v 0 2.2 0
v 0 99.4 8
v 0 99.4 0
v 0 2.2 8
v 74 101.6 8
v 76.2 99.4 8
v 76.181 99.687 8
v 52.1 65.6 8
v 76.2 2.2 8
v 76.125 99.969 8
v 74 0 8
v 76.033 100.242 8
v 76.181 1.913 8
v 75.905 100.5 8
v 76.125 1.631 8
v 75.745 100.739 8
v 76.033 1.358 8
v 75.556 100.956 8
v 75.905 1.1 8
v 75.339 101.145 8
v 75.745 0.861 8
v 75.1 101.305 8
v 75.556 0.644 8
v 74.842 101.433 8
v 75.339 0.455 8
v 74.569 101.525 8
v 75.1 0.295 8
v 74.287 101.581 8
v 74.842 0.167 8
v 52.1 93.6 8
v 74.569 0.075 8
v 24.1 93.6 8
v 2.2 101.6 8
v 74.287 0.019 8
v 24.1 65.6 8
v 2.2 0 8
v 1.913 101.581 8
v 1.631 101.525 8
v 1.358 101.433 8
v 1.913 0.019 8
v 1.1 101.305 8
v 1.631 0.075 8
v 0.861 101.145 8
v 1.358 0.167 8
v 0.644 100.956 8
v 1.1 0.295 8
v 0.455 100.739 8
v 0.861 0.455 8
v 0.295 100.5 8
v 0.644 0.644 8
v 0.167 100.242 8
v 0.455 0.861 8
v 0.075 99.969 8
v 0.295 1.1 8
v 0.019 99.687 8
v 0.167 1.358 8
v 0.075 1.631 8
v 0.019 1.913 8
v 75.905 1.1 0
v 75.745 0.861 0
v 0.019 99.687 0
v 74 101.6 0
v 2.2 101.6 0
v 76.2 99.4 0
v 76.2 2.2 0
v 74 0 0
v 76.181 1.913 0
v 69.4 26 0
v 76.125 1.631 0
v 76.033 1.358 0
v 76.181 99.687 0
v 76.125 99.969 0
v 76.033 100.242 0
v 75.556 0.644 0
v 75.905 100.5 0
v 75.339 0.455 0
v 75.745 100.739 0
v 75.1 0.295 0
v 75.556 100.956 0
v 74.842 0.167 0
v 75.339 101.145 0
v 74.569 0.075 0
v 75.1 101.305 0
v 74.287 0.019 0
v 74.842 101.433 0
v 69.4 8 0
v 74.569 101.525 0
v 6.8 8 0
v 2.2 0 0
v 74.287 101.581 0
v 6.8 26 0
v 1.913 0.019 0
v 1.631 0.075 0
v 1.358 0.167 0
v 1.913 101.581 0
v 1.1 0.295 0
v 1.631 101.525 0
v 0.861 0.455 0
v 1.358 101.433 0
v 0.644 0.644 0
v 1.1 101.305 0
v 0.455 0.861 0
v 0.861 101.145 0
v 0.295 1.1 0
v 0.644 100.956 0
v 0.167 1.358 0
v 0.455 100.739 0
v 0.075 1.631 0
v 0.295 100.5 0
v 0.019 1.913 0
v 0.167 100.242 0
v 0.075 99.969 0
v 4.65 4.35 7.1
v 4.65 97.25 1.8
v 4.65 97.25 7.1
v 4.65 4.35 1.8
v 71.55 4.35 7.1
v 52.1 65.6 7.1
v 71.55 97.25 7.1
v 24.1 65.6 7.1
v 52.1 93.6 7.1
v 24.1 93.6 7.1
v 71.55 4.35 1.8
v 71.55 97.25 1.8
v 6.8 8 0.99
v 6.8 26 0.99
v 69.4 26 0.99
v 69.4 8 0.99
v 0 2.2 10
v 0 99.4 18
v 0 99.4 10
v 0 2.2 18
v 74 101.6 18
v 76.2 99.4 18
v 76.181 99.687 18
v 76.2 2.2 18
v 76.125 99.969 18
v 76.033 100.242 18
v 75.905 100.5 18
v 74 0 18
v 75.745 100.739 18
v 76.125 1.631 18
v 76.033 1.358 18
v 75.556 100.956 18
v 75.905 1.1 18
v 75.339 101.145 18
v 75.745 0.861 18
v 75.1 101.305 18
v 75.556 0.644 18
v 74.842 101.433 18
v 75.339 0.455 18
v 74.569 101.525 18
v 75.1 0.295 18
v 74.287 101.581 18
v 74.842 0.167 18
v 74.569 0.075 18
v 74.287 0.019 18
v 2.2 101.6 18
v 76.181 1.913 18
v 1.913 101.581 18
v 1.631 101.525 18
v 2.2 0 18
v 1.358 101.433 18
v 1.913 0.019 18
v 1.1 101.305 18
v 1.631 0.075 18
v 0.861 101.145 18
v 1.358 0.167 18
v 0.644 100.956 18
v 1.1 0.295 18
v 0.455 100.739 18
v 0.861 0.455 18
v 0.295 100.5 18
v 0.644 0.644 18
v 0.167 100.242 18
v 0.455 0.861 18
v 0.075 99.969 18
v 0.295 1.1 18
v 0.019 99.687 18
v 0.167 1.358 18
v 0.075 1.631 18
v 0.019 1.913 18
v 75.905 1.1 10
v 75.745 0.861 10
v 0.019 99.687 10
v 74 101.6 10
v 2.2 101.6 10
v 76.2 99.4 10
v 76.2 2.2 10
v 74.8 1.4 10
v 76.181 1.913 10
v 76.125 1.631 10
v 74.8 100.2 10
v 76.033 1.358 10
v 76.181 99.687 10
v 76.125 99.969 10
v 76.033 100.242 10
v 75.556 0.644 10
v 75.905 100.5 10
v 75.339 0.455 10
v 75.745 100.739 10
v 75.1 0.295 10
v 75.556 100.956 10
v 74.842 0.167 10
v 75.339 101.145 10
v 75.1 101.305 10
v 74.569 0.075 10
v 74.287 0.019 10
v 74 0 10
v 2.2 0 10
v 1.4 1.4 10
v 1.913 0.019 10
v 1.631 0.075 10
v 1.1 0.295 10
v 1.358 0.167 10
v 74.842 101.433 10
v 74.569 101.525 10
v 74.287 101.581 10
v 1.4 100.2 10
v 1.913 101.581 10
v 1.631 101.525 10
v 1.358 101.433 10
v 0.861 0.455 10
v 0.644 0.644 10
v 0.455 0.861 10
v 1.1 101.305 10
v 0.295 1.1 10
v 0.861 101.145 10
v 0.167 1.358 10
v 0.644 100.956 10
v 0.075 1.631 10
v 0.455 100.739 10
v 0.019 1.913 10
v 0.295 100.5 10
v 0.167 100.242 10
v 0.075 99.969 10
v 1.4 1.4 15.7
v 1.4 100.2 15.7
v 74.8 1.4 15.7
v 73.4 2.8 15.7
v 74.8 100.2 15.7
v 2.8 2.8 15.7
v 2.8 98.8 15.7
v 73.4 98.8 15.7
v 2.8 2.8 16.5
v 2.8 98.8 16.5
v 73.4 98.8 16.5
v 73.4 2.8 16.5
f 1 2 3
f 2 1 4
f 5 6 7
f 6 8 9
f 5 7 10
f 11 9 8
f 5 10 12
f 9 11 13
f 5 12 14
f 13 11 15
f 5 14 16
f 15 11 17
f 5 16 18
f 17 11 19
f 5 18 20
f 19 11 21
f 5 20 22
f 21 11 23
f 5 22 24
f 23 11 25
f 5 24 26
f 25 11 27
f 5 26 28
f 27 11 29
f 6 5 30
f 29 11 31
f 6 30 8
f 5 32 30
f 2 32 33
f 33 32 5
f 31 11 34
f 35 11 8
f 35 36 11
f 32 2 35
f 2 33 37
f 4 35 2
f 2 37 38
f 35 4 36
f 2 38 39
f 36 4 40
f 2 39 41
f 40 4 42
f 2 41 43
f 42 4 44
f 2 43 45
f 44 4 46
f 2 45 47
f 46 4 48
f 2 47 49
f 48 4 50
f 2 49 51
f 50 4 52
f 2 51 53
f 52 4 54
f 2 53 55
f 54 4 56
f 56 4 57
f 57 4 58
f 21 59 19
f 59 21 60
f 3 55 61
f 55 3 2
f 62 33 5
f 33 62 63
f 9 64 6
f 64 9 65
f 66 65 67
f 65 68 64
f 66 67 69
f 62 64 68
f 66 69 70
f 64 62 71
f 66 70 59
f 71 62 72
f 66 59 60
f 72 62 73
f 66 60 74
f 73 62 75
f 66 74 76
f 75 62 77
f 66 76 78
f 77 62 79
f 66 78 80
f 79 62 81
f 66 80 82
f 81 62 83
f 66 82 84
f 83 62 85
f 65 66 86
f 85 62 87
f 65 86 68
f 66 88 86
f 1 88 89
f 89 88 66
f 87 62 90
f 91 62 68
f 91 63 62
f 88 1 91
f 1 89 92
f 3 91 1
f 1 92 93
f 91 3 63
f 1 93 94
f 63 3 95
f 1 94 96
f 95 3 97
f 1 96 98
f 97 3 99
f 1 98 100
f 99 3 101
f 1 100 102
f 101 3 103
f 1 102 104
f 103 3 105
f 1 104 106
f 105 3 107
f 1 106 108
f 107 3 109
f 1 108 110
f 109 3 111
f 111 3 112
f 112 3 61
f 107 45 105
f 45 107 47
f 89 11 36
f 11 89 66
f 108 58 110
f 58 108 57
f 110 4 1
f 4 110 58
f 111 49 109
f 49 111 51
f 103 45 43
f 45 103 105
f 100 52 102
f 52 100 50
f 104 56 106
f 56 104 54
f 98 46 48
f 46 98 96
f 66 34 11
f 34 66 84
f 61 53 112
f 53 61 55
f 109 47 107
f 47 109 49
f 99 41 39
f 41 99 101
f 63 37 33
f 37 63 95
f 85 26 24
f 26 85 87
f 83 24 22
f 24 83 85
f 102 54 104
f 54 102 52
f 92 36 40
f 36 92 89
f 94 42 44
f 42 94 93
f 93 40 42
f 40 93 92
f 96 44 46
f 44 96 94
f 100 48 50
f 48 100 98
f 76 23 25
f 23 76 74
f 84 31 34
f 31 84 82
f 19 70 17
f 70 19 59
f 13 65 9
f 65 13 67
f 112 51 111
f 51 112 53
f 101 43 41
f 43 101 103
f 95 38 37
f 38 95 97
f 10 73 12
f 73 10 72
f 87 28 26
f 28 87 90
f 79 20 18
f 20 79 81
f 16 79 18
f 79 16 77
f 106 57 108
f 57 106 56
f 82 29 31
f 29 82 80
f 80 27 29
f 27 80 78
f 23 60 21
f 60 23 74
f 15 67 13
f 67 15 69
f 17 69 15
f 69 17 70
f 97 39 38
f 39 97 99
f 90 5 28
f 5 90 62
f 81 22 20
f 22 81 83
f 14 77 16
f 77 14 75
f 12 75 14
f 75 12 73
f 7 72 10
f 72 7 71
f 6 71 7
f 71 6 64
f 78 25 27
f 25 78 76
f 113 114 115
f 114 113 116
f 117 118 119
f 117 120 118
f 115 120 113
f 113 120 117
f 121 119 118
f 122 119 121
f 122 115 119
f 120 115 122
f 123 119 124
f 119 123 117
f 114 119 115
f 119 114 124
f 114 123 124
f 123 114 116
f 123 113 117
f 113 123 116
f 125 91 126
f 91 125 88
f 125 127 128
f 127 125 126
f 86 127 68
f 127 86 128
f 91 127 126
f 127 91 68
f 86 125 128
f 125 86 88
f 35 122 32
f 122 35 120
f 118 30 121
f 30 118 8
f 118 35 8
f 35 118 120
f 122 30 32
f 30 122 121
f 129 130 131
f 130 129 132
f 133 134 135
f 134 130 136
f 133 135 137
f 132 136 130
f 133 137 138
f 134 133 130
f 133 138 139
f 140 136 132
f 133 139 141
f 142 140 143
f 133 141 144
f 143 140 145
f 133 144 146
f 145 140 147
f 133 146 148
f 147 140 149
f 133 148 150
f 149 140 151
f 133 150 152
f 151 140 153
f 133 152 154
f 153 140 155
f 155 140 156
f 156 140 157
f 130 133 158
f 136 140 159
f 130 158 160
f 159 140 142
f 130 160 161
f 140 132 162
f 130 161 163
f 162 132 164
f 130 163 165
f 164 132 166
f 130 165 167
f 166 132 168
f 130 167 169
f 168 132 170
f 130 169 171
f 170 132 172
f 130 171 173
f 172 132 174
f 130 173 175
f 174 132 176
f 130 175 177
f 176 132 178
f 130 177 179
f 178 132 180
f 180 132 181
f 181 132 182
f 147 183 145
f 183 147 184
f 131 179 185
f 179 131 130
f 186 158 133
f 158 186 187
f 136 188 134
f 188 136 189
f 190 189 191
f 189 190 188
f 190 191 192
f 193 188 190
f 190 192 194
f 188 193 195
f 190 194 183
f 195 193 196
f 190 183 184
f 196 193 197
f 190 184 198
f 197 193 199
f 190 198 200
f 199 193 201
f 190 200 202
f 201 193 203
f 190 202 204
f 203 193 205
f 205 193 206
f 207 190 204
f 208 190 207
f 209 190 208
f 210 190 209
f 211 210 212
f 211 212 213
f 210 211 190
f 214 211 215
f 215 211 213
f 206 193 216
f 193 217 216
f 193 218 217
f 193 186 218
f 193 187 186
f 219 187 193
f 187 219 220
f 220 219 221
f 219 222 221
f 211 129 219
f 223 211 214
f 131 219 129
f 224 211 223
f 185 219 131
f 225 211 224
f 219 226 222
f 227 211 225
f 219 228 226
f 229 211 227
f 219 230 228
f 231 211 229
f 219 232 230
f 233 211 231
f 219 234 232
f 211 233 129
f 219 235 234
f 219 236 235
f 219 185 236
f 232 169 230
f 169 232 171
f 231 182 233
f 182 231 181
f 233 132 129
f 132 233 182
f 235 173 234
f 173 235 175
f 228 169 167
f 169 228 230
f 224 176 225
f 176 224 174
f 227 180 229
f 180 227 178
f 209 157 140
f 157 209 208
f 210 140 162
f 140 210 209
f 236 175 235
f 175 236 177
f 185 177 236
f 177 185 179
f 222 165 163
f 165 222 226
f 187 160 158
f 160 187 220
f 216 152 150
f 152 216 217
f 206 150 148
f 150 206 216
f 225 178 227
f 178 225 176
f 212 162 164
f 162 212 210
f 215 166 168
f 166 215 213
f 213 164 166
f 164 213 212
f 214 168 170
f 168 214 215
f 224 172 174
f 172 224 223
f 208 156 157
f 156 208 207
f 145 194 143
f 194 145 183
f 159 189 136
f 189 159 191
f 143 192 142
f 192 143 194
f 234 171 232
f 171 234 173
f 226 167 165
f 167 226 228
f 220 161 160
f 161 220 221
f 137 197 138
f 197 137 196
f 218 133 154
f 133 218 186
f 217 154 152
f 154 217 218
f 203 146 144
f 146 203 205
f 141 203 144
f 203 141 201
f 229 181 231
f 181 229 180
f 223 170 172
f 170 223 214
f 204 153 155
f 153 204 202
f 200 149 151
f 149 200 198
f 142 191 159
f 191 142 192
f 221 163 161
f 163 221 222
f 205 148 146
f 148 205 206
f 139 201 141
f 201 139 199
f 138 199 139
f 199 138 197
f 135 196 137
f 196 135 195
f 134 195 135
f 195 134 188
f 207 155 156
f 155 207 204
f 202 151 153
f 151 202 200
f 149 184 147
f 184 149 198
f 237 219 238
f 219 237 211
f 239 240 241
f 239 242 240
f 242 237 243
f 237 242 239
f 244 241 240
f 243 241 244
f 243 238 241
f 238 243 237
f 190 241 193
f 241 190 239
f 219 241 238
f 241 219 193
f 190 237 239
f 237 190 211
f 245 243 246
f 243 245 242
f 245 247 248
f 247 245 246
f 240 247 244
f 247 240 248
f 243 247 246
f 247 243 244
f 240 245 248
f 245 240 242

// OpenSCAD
// =============================================
// HoloCase V4 - Clean & Reliable Version
// Rounded corners + proper lid fit
// =============================================

/* [Render] */
// "base", "lid", or "both"
render_what = "both";

/* [Dimensions] */
width  = 76.2;     // 3"
height = 101.6;    // 4"
thickness = 8.0;

/* [Card Cavity] */
card_w = 66.0;
card_h = 92.0;
card_t = 2.3;
clearance = 0.45;   // Increase slightly if card is too tight

/* [Lid] */
lid_overlap = 5.0;
wall = 1.8;

/* [Features] */
label_depth = 0.9;
qr_size = 28;
qr_depth = 0.9;

/* [Rounding] */
r = 2.2;   // Corner radius

module rounded_rect(w, h, t, rad) {
    hull() {
        translate([rad, rad, 0]) cylinder(r=rad, h=t, $fn=48);
        translate([w-rad, rad, 0]) cylinder(r=rad, h=t, $fn=48);
        translate([rad, h-rad, 0]) cylinder(r=rad, h=t, $fn=48);
        translate([w-rad, h-rad, 0]) cylinder(r=rad, h=t, $fn=48);
    }
}

module base() {
    difference() {
        // Outer rounded body
        rounded_rect(width, height, thickness, r);
        
        // Card well
        translate([
            (width - card_w - clearance*2)/2,
            (height - card_h - clearance*2)/2,
            wall
        ])
        cube([card_w + clearance*2, card_h + clearance*2, card_t + 3]);
        
        // Front label recess
        translate([wall + 5, 8, -0.01])
        cube([width - wall*2 - 10, 18, label_depth + 0.1]);
        
        // Back QR recess
        translate([(width - qr_size)/2, height - qr_size - 8, thickness - qr_depth])
        cube([qr_size, qr_size, qr_depth + 0.1]);
    }
}

module lid() {
    difference() {
        // Outer rounded lid
        rounded_rect(width, height, thickness, r);
        
        // Main mating cavity (lid sits over base)
        translate([wall - 0.4, wall - 0.4, -0.1])
        cube([
            width - wall*2 + 0.8,
            height - wall*2 + 0.8,
            lid_overlap + 0.8
        ]);
        
        // Internal seating step
        translate([wall + 1.0, wall + 1.0, lid_overlap - 1.5])
        cube([
            width - wall*2 - 2.0,
            height - wall*2 - 2.0,
            3
        ]);
    }
}

// Render
if (render_what == "base" || render_what == "both") {
    color("Yellow") base();
}

if (render_what == "lid" || render_what == "both") {
    translate([0, 0, thickness + 2])
    color("Lime") lid();
}
